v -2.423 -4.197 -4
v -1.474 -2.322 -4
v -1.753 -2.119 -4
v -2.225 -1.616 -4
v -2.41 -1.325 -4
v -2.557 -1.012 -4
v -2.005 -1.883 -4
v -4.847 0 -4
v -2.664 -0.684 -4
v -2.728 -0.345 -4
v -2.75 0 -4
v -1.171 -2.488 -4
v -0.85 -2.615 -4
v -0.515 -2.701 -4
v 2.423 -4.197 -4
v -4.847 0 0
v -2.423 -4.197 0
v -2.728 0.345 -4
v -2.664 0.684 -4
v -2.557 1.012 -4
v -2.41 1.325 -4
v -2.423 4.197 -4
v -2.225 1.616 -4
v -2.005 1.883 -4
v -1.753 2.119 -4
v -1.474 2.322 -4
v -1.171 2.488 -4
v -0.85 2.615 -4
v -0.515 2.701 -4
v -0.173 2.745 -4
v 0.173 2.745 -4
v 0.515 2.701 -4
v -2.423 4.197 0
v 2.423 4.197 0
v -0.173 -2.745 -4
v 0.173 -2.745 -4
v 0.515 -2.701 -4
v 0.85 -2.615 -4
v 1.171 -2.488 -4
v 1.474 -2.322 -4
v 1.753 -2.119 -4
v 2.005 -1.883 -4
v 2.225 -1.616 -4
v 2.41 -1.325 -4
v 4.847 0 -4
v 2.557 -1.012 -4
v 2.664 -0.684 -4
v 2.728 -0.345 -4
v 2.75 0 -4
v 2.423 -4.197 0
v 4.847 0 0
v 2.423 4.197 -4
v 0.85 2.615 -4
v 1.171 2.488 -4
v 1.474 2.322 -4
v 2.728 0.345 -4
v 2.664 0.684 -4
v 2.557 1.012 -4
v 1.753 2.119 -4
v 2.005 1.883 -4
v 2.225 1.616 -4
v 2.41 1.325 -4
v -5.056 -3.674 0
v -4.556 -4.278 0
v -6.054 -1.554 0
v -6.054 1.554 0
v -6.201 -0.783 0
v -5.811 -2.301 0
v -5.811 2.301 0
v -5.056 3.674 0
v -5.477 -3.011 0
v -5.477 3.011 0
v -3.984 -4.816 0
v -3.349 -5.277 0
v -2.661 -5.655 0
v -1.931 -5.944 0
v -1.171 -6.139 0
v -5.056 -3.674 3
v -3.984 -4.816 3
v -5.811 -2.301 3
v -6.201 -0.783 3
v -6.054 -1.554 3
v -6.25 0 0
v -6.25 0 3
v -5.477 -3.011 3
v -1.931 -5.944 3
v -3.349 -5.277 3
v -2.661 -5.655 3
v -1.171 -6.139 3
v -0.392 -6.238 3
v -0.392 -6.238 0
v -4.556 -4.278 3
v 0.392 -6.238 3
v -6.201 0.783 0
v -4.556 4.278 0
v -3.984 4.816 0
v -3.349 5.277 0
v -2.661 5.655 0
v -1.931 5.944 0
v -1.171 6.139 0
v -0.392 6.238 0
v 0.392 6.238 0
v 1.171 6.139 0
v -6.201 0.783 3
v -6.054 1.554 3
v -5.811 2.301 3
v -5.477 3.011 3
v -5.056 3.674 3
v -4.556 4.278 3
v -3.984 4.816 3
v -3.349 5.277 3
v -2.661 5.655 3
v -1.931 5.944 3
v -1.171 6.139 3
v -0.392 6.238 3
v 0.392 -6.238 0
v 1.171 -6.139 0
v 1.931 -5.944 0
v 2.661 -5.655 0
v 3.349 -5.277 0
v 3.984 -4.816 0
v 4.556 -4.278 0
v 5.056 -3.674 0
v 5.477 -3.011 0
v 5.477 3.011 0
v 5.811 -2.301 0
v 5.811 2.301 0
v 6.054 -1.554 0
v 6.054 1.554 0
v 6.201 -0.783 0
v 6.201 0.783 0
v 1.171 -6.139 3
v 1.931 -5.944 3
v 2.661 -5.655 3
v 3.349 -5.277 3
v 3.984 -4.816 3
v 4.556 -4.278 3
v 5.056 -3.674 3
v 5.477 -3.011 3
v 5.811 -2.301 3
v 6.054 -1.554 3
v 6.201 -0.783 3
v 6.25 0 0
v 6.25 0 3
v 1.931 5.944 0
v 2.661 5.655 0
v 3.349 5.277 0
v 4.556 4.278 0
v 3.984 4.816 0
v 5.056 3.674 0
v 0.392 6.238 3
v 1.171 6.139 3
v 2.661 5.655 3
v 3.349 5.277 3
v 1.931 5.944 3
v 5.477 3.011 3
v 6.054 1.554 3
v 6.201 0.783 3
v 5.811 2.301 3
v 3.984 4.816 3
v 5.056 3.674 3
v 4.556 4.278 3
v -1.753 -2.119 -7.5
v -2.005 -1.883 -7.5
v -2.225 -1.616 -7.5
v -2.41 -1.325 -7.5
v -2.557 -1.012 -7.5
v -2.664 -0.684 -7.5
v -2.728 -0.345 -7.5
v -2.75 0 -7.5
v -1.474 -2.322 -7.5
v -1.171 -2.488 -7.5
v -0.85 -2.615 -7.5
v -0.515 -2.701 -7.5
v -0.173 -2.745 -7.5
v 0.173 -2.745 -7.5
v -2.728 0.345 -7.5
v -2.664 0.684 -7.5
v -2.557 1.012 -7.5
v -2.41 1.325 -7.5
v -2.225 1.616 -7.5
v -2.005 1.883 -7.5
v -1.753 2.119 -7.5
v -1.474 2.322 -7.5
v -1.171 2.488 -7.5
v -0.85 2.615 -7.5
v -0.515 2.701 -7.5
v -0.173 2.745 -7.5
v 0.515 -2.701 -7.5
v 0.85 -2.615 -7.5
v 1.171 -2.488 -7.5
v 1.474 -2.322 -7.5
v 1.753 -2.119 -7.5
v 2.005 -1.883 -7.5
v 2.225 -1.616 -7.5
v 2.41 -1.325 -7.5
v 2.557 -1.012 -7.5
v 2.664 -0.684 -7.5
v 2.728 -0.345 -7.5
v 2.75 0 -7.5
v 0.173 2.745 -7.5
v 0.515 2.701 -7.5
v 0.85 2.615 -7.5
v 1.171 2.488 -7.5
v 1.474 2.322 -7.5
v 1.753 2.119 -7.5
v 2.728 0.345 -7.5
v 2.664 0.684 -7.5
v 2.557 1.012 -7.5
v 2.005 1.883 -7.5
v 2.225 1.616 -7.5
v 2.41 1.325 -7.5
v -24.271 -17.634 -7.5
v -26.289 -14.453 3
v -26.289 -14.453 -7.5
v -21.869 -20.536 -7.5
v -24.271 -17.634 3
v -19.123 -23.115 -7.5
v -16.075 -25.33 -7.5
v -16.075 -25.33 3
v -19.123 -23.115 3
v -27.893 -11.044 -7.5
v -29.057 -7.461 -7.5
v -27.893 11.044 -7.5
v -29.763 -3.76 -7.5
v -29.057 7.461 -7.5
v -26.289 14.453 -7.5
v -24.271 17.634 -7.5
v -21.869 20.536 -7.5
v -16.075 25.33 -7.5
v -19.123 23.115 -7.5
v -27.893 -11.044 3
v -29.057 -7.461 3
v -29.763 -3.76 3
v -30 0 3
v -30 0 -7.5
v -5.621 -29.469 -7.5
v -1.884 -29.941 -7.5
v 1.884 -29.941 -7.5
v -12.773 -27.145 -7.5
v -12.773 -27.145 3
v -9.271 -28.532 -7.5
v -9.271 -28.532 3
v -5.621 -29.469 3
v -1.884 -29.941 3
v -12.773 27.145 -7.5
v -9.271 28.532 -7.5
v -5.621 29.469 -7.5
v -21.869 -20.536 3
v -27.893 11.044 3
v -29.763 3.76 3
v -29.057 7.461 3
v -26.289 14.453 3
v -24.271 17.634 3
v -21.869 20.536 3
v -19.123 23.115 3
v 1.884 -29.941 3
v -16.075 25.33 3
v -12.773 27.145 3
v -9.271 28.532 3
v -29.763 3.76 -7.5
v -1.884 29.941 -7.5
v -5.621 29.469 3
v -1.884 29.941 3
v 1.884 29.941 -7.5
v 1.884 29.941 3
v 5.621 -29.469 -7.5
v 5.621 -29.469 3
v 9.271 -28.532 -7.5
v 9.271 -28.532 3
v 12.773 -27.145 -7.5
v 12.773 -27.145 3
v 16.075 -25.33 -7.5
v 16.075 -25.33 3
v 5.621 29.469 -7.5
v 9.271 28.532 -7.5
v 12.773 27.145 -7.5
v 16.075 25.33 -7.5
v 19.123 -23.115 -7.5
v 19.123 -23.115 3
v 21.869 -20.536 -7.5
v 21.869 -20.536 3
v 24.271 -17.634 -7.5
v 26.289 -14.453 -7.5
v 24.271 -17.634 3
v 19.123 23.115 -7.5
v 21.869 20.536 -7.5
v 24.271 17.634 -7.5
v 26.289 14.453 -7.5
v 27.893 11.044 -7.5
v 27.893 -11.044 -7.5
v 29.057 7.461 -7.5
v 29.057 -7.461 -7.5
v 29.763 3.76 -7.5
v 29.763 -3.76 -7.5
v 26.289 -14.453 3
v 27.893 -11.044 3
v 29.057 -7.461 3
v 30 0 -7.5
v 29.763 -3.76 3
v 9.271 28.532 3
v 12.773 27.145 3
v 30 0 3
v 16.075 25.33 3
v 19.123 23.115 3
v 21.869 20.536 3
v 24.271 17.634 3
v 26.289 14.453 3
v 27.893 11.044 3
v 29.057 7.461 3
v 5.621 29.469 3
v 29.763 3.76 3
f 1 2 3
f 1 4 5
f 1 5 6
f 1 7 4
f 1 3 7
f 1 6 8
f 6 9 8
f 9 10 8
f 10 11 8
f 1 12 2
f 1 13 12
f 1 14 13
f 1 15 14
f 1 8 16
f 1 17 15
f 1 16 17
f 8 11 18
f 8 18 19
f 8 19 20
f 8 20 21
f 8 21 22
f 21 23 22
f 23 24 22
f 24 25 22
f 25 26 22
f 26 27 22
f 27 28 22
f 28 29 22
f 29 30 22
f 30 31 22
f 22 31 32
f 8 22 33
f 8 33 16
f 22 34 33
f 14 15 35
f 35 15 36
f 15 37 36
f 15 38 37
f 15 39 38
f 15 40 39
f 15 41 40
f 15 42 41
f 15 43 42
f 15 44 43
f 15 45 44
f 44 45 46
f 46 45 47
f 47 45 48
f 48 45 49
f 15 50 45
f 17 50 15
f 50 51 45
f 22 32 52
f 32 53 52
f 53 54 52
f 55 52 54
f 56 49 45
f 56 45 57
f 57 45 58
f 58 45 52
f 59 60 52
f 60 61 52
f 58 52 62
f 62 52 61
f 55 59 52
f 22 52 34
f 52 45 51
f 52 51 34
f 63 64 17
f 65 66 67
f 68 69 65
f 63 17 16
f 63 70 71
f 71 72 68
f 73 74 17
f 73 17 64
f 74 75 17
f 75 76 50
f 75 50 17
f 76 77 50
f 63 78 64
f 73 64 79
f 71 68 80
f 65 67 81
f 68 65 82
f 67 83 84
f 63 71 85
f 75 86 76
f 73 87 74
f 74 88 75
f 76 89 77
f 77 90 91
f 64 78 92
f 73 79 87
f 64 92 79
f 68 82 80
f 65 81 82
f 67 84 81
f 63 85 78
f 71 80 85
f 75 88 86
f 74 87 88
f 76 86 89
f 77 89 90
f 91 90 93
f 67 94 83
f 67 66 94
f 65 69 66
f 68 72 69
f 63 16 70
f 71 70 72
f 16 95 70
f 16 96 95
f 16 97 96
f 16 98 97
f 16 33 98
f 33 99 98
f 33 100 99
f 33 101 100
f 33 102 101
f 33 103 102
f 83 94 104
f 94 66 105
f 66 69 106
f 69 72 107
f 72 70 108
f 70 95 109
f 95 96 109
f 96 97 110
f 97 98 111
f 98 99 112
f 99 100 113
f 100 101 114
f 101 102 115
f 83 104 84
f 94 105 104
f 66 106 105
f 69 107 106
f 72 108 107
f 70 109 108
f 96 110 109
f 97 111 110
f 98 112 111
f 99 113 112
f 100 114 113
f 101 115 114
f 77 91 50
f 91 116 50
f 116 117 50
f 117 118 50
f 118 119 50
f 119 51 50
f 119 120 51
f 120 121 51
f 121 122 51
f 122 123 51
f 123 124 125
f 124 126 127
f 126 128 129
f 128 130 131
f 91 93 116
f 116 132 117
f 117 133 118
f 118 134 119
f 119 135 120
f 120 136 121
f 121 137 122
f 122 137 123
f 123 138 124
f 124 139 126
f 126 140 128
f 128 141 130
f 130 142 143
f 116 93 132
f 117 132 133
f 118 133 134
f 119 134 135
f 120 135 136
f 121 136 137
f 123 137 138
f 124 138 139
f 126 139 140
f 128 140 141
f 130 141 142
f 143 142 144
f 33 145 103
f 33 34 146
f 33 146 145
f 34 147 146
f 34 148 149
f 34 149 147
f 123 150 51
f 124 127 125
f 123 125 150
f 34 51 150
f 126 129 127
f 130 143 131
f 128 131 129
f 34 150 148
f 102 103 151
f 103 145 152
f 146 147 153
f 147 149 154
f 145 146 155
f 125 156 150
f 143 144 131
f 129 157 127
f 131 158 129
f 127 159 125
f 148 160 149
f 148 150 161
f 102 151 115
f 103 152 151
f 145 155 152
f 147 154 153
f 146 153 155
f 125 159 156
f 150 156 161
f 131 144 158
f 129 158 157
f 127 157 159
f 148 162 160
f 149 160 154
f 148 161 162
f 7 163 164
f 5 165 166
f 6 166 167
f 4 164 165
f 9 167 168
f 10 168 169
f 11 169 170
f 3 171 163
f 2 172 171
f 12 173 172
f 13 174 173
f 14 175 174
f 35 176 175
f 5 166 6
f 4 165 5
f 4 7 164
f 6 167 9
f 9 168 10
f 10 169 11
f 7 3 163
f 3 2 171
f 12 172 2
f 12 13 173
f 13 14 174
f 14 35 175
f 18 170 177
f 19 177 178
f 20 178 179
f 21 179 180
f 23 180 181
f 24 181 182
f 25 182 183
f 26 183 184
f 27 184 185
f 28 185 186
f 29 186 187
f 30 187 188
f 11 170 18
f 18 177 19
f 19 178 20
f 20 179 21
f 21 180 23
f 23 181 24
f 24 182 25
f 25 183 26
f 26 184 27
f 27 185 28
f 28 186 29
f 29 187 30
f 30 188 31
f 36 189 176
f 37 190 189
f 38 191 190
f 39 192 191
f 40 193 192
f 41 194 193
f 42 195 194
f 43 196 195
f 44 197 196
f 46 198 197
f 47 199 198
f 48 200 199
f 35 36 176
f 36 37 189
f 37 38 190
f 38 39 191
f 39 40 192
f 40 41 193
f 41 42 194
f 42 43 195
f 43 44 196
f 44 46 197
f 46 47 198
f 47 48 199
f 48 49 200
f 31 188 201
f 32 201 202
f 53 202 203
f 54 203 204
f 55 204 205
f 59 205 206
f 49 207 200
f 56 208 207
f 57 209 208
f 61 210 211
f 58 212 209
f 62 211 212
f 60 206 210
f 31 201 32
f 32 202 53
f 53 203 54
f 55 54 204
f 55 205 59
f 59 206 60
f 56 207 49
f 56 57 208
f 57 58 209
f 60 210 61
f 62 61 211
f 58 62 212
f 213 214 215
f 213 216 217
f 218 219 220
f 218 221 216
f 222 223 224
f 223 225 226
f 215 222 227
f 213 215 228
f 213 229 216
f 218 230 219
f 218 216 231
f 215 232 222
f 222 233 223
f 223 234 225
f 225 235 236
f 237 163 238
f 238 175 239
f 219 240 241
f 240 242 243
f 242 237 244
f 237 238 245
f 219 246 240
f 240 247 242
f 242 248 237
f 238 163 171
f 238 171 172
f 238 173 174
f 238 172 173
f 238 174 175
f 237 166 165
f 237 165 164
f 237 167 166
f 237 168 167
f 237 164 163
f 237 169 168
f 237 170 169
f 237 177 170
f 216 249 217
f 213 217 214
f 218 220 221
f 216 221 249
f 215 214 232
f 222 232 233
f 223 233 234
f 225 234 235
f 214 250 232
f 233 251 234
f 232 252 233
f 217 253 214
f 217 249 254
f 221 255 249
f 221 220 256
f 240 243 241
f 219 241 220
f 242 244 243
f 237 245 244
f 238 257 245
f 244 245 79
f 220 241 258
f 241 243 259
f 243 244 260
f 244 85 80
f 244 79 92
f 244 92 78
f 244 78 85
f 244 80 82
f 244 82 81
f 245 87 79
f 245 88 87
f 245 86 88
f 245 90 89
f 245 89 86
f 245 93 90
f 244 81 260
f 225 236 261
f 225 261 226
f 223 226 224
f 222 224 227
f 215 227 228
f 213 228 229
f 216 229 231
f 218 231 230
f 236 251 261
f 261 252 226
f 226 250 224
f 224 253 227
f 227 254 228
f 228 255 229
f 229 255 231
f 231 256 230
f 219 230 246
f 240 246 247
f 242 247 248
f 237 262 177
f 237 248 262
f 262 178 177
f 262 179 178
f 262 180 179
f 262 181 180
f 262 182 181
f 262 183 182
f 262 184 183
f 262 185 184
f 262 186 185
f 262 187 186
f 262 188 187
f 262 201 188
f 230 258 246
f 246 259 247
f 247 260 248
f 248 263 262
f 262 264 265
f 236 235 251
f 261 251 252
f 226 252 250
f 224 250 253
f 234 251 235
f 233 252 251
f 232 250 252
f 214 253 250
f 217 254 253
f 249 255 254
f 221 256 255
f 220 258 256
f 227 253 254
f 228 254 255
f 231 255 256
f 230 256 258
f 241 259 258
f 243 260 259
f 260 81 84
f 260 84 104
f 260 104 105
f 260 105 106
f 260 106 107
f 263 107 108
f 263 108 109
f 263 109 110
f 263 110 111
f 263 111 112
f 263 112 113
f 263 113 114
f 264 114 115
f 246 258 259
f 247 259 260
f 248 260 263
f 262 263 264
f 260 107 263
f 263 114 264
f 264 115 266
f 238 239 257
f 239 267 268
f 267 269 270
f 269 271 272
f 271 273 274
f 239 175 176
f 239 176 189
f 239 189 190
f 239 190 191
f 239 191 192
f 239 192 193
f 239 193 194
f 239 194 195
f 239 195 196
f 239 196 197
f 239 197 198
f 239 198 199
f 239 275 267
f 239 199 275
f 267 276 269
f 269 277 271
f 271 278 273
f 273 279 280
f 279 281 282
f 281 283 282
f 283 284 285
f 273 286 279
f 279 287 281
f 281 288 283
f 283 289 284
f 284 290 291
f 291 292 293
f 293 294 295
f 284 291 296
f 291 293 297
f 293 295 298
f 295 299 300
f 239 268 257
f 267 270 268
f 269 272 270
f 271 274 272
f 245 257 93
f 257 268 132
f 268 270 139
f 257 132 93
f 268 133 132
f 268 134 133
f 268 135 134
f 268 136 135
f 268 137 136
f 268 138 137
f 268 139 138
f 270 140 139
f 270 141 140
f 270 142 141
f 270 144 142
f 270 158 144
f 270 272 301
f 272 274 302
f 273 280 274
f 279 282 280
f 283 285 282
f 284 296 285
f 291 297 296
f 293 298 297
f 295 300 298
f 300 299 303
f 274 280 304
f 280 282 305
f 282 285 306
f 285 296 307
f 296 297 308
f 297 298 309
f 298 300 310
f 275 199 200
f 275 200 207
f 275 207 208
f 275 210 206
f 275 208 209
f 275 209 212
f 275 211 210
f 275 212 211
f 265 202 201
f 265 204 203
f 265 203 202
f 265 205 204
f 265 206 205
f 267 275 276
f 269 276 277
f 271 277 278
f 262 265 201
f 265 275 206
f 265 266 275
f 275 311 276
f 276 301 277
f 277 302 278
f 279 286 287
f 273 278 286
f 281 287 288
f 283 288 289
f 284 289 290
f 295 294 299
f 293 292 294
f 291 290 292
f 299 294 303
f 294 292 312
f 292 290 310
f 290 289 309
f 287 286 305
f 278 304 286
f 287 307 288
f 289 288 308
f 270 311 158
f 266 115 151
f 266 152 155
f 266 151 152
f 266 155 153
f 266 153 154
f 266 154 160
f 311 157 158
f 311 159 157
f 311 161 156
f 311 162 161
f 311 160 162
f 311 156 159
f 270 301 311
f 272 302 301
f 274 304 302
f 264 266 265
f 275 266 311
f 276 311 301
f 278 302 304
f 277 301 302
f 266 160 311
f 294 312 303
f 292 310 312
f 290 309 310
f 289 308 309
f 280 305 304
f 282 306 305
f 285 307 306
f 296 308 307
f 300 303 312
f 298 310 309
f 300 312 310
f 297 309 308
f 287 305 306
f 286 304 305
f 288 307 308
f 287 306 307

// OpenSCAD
$fn = 50;

difference() {
	union() {
		translate(v = [0, 0, -7.5]) {
			cylinder(h = 10.5, r = 30.0);
		}
	}
	union() {
		translate(v = [0, 0, 0]) {
			rotate(a = [0, 0, 0]) {
				difference() {
					union() {
						translate(v = [0, 0, -4]) {
							linear_extrude(height = 4) {
								polygon(points = [[4.8468, 0.0], [2.4234000000000004, 4.197451927062417], [-2.423399999999999, 4.197451927062417], [-4.8468, 5.935618106107392e-16], [-2.423400000000002, -4.197451927062416], [2.423399999999997, -4.197451927062419]]);
							}
						}
					}
					union();
				}
			}
		}
		#cylinder(h = 3, r = 6.25);
		#translate(v = [0, 0, -100.0]) {
			cylinder(h = 200, r = 2.75);
		}
	}
}
